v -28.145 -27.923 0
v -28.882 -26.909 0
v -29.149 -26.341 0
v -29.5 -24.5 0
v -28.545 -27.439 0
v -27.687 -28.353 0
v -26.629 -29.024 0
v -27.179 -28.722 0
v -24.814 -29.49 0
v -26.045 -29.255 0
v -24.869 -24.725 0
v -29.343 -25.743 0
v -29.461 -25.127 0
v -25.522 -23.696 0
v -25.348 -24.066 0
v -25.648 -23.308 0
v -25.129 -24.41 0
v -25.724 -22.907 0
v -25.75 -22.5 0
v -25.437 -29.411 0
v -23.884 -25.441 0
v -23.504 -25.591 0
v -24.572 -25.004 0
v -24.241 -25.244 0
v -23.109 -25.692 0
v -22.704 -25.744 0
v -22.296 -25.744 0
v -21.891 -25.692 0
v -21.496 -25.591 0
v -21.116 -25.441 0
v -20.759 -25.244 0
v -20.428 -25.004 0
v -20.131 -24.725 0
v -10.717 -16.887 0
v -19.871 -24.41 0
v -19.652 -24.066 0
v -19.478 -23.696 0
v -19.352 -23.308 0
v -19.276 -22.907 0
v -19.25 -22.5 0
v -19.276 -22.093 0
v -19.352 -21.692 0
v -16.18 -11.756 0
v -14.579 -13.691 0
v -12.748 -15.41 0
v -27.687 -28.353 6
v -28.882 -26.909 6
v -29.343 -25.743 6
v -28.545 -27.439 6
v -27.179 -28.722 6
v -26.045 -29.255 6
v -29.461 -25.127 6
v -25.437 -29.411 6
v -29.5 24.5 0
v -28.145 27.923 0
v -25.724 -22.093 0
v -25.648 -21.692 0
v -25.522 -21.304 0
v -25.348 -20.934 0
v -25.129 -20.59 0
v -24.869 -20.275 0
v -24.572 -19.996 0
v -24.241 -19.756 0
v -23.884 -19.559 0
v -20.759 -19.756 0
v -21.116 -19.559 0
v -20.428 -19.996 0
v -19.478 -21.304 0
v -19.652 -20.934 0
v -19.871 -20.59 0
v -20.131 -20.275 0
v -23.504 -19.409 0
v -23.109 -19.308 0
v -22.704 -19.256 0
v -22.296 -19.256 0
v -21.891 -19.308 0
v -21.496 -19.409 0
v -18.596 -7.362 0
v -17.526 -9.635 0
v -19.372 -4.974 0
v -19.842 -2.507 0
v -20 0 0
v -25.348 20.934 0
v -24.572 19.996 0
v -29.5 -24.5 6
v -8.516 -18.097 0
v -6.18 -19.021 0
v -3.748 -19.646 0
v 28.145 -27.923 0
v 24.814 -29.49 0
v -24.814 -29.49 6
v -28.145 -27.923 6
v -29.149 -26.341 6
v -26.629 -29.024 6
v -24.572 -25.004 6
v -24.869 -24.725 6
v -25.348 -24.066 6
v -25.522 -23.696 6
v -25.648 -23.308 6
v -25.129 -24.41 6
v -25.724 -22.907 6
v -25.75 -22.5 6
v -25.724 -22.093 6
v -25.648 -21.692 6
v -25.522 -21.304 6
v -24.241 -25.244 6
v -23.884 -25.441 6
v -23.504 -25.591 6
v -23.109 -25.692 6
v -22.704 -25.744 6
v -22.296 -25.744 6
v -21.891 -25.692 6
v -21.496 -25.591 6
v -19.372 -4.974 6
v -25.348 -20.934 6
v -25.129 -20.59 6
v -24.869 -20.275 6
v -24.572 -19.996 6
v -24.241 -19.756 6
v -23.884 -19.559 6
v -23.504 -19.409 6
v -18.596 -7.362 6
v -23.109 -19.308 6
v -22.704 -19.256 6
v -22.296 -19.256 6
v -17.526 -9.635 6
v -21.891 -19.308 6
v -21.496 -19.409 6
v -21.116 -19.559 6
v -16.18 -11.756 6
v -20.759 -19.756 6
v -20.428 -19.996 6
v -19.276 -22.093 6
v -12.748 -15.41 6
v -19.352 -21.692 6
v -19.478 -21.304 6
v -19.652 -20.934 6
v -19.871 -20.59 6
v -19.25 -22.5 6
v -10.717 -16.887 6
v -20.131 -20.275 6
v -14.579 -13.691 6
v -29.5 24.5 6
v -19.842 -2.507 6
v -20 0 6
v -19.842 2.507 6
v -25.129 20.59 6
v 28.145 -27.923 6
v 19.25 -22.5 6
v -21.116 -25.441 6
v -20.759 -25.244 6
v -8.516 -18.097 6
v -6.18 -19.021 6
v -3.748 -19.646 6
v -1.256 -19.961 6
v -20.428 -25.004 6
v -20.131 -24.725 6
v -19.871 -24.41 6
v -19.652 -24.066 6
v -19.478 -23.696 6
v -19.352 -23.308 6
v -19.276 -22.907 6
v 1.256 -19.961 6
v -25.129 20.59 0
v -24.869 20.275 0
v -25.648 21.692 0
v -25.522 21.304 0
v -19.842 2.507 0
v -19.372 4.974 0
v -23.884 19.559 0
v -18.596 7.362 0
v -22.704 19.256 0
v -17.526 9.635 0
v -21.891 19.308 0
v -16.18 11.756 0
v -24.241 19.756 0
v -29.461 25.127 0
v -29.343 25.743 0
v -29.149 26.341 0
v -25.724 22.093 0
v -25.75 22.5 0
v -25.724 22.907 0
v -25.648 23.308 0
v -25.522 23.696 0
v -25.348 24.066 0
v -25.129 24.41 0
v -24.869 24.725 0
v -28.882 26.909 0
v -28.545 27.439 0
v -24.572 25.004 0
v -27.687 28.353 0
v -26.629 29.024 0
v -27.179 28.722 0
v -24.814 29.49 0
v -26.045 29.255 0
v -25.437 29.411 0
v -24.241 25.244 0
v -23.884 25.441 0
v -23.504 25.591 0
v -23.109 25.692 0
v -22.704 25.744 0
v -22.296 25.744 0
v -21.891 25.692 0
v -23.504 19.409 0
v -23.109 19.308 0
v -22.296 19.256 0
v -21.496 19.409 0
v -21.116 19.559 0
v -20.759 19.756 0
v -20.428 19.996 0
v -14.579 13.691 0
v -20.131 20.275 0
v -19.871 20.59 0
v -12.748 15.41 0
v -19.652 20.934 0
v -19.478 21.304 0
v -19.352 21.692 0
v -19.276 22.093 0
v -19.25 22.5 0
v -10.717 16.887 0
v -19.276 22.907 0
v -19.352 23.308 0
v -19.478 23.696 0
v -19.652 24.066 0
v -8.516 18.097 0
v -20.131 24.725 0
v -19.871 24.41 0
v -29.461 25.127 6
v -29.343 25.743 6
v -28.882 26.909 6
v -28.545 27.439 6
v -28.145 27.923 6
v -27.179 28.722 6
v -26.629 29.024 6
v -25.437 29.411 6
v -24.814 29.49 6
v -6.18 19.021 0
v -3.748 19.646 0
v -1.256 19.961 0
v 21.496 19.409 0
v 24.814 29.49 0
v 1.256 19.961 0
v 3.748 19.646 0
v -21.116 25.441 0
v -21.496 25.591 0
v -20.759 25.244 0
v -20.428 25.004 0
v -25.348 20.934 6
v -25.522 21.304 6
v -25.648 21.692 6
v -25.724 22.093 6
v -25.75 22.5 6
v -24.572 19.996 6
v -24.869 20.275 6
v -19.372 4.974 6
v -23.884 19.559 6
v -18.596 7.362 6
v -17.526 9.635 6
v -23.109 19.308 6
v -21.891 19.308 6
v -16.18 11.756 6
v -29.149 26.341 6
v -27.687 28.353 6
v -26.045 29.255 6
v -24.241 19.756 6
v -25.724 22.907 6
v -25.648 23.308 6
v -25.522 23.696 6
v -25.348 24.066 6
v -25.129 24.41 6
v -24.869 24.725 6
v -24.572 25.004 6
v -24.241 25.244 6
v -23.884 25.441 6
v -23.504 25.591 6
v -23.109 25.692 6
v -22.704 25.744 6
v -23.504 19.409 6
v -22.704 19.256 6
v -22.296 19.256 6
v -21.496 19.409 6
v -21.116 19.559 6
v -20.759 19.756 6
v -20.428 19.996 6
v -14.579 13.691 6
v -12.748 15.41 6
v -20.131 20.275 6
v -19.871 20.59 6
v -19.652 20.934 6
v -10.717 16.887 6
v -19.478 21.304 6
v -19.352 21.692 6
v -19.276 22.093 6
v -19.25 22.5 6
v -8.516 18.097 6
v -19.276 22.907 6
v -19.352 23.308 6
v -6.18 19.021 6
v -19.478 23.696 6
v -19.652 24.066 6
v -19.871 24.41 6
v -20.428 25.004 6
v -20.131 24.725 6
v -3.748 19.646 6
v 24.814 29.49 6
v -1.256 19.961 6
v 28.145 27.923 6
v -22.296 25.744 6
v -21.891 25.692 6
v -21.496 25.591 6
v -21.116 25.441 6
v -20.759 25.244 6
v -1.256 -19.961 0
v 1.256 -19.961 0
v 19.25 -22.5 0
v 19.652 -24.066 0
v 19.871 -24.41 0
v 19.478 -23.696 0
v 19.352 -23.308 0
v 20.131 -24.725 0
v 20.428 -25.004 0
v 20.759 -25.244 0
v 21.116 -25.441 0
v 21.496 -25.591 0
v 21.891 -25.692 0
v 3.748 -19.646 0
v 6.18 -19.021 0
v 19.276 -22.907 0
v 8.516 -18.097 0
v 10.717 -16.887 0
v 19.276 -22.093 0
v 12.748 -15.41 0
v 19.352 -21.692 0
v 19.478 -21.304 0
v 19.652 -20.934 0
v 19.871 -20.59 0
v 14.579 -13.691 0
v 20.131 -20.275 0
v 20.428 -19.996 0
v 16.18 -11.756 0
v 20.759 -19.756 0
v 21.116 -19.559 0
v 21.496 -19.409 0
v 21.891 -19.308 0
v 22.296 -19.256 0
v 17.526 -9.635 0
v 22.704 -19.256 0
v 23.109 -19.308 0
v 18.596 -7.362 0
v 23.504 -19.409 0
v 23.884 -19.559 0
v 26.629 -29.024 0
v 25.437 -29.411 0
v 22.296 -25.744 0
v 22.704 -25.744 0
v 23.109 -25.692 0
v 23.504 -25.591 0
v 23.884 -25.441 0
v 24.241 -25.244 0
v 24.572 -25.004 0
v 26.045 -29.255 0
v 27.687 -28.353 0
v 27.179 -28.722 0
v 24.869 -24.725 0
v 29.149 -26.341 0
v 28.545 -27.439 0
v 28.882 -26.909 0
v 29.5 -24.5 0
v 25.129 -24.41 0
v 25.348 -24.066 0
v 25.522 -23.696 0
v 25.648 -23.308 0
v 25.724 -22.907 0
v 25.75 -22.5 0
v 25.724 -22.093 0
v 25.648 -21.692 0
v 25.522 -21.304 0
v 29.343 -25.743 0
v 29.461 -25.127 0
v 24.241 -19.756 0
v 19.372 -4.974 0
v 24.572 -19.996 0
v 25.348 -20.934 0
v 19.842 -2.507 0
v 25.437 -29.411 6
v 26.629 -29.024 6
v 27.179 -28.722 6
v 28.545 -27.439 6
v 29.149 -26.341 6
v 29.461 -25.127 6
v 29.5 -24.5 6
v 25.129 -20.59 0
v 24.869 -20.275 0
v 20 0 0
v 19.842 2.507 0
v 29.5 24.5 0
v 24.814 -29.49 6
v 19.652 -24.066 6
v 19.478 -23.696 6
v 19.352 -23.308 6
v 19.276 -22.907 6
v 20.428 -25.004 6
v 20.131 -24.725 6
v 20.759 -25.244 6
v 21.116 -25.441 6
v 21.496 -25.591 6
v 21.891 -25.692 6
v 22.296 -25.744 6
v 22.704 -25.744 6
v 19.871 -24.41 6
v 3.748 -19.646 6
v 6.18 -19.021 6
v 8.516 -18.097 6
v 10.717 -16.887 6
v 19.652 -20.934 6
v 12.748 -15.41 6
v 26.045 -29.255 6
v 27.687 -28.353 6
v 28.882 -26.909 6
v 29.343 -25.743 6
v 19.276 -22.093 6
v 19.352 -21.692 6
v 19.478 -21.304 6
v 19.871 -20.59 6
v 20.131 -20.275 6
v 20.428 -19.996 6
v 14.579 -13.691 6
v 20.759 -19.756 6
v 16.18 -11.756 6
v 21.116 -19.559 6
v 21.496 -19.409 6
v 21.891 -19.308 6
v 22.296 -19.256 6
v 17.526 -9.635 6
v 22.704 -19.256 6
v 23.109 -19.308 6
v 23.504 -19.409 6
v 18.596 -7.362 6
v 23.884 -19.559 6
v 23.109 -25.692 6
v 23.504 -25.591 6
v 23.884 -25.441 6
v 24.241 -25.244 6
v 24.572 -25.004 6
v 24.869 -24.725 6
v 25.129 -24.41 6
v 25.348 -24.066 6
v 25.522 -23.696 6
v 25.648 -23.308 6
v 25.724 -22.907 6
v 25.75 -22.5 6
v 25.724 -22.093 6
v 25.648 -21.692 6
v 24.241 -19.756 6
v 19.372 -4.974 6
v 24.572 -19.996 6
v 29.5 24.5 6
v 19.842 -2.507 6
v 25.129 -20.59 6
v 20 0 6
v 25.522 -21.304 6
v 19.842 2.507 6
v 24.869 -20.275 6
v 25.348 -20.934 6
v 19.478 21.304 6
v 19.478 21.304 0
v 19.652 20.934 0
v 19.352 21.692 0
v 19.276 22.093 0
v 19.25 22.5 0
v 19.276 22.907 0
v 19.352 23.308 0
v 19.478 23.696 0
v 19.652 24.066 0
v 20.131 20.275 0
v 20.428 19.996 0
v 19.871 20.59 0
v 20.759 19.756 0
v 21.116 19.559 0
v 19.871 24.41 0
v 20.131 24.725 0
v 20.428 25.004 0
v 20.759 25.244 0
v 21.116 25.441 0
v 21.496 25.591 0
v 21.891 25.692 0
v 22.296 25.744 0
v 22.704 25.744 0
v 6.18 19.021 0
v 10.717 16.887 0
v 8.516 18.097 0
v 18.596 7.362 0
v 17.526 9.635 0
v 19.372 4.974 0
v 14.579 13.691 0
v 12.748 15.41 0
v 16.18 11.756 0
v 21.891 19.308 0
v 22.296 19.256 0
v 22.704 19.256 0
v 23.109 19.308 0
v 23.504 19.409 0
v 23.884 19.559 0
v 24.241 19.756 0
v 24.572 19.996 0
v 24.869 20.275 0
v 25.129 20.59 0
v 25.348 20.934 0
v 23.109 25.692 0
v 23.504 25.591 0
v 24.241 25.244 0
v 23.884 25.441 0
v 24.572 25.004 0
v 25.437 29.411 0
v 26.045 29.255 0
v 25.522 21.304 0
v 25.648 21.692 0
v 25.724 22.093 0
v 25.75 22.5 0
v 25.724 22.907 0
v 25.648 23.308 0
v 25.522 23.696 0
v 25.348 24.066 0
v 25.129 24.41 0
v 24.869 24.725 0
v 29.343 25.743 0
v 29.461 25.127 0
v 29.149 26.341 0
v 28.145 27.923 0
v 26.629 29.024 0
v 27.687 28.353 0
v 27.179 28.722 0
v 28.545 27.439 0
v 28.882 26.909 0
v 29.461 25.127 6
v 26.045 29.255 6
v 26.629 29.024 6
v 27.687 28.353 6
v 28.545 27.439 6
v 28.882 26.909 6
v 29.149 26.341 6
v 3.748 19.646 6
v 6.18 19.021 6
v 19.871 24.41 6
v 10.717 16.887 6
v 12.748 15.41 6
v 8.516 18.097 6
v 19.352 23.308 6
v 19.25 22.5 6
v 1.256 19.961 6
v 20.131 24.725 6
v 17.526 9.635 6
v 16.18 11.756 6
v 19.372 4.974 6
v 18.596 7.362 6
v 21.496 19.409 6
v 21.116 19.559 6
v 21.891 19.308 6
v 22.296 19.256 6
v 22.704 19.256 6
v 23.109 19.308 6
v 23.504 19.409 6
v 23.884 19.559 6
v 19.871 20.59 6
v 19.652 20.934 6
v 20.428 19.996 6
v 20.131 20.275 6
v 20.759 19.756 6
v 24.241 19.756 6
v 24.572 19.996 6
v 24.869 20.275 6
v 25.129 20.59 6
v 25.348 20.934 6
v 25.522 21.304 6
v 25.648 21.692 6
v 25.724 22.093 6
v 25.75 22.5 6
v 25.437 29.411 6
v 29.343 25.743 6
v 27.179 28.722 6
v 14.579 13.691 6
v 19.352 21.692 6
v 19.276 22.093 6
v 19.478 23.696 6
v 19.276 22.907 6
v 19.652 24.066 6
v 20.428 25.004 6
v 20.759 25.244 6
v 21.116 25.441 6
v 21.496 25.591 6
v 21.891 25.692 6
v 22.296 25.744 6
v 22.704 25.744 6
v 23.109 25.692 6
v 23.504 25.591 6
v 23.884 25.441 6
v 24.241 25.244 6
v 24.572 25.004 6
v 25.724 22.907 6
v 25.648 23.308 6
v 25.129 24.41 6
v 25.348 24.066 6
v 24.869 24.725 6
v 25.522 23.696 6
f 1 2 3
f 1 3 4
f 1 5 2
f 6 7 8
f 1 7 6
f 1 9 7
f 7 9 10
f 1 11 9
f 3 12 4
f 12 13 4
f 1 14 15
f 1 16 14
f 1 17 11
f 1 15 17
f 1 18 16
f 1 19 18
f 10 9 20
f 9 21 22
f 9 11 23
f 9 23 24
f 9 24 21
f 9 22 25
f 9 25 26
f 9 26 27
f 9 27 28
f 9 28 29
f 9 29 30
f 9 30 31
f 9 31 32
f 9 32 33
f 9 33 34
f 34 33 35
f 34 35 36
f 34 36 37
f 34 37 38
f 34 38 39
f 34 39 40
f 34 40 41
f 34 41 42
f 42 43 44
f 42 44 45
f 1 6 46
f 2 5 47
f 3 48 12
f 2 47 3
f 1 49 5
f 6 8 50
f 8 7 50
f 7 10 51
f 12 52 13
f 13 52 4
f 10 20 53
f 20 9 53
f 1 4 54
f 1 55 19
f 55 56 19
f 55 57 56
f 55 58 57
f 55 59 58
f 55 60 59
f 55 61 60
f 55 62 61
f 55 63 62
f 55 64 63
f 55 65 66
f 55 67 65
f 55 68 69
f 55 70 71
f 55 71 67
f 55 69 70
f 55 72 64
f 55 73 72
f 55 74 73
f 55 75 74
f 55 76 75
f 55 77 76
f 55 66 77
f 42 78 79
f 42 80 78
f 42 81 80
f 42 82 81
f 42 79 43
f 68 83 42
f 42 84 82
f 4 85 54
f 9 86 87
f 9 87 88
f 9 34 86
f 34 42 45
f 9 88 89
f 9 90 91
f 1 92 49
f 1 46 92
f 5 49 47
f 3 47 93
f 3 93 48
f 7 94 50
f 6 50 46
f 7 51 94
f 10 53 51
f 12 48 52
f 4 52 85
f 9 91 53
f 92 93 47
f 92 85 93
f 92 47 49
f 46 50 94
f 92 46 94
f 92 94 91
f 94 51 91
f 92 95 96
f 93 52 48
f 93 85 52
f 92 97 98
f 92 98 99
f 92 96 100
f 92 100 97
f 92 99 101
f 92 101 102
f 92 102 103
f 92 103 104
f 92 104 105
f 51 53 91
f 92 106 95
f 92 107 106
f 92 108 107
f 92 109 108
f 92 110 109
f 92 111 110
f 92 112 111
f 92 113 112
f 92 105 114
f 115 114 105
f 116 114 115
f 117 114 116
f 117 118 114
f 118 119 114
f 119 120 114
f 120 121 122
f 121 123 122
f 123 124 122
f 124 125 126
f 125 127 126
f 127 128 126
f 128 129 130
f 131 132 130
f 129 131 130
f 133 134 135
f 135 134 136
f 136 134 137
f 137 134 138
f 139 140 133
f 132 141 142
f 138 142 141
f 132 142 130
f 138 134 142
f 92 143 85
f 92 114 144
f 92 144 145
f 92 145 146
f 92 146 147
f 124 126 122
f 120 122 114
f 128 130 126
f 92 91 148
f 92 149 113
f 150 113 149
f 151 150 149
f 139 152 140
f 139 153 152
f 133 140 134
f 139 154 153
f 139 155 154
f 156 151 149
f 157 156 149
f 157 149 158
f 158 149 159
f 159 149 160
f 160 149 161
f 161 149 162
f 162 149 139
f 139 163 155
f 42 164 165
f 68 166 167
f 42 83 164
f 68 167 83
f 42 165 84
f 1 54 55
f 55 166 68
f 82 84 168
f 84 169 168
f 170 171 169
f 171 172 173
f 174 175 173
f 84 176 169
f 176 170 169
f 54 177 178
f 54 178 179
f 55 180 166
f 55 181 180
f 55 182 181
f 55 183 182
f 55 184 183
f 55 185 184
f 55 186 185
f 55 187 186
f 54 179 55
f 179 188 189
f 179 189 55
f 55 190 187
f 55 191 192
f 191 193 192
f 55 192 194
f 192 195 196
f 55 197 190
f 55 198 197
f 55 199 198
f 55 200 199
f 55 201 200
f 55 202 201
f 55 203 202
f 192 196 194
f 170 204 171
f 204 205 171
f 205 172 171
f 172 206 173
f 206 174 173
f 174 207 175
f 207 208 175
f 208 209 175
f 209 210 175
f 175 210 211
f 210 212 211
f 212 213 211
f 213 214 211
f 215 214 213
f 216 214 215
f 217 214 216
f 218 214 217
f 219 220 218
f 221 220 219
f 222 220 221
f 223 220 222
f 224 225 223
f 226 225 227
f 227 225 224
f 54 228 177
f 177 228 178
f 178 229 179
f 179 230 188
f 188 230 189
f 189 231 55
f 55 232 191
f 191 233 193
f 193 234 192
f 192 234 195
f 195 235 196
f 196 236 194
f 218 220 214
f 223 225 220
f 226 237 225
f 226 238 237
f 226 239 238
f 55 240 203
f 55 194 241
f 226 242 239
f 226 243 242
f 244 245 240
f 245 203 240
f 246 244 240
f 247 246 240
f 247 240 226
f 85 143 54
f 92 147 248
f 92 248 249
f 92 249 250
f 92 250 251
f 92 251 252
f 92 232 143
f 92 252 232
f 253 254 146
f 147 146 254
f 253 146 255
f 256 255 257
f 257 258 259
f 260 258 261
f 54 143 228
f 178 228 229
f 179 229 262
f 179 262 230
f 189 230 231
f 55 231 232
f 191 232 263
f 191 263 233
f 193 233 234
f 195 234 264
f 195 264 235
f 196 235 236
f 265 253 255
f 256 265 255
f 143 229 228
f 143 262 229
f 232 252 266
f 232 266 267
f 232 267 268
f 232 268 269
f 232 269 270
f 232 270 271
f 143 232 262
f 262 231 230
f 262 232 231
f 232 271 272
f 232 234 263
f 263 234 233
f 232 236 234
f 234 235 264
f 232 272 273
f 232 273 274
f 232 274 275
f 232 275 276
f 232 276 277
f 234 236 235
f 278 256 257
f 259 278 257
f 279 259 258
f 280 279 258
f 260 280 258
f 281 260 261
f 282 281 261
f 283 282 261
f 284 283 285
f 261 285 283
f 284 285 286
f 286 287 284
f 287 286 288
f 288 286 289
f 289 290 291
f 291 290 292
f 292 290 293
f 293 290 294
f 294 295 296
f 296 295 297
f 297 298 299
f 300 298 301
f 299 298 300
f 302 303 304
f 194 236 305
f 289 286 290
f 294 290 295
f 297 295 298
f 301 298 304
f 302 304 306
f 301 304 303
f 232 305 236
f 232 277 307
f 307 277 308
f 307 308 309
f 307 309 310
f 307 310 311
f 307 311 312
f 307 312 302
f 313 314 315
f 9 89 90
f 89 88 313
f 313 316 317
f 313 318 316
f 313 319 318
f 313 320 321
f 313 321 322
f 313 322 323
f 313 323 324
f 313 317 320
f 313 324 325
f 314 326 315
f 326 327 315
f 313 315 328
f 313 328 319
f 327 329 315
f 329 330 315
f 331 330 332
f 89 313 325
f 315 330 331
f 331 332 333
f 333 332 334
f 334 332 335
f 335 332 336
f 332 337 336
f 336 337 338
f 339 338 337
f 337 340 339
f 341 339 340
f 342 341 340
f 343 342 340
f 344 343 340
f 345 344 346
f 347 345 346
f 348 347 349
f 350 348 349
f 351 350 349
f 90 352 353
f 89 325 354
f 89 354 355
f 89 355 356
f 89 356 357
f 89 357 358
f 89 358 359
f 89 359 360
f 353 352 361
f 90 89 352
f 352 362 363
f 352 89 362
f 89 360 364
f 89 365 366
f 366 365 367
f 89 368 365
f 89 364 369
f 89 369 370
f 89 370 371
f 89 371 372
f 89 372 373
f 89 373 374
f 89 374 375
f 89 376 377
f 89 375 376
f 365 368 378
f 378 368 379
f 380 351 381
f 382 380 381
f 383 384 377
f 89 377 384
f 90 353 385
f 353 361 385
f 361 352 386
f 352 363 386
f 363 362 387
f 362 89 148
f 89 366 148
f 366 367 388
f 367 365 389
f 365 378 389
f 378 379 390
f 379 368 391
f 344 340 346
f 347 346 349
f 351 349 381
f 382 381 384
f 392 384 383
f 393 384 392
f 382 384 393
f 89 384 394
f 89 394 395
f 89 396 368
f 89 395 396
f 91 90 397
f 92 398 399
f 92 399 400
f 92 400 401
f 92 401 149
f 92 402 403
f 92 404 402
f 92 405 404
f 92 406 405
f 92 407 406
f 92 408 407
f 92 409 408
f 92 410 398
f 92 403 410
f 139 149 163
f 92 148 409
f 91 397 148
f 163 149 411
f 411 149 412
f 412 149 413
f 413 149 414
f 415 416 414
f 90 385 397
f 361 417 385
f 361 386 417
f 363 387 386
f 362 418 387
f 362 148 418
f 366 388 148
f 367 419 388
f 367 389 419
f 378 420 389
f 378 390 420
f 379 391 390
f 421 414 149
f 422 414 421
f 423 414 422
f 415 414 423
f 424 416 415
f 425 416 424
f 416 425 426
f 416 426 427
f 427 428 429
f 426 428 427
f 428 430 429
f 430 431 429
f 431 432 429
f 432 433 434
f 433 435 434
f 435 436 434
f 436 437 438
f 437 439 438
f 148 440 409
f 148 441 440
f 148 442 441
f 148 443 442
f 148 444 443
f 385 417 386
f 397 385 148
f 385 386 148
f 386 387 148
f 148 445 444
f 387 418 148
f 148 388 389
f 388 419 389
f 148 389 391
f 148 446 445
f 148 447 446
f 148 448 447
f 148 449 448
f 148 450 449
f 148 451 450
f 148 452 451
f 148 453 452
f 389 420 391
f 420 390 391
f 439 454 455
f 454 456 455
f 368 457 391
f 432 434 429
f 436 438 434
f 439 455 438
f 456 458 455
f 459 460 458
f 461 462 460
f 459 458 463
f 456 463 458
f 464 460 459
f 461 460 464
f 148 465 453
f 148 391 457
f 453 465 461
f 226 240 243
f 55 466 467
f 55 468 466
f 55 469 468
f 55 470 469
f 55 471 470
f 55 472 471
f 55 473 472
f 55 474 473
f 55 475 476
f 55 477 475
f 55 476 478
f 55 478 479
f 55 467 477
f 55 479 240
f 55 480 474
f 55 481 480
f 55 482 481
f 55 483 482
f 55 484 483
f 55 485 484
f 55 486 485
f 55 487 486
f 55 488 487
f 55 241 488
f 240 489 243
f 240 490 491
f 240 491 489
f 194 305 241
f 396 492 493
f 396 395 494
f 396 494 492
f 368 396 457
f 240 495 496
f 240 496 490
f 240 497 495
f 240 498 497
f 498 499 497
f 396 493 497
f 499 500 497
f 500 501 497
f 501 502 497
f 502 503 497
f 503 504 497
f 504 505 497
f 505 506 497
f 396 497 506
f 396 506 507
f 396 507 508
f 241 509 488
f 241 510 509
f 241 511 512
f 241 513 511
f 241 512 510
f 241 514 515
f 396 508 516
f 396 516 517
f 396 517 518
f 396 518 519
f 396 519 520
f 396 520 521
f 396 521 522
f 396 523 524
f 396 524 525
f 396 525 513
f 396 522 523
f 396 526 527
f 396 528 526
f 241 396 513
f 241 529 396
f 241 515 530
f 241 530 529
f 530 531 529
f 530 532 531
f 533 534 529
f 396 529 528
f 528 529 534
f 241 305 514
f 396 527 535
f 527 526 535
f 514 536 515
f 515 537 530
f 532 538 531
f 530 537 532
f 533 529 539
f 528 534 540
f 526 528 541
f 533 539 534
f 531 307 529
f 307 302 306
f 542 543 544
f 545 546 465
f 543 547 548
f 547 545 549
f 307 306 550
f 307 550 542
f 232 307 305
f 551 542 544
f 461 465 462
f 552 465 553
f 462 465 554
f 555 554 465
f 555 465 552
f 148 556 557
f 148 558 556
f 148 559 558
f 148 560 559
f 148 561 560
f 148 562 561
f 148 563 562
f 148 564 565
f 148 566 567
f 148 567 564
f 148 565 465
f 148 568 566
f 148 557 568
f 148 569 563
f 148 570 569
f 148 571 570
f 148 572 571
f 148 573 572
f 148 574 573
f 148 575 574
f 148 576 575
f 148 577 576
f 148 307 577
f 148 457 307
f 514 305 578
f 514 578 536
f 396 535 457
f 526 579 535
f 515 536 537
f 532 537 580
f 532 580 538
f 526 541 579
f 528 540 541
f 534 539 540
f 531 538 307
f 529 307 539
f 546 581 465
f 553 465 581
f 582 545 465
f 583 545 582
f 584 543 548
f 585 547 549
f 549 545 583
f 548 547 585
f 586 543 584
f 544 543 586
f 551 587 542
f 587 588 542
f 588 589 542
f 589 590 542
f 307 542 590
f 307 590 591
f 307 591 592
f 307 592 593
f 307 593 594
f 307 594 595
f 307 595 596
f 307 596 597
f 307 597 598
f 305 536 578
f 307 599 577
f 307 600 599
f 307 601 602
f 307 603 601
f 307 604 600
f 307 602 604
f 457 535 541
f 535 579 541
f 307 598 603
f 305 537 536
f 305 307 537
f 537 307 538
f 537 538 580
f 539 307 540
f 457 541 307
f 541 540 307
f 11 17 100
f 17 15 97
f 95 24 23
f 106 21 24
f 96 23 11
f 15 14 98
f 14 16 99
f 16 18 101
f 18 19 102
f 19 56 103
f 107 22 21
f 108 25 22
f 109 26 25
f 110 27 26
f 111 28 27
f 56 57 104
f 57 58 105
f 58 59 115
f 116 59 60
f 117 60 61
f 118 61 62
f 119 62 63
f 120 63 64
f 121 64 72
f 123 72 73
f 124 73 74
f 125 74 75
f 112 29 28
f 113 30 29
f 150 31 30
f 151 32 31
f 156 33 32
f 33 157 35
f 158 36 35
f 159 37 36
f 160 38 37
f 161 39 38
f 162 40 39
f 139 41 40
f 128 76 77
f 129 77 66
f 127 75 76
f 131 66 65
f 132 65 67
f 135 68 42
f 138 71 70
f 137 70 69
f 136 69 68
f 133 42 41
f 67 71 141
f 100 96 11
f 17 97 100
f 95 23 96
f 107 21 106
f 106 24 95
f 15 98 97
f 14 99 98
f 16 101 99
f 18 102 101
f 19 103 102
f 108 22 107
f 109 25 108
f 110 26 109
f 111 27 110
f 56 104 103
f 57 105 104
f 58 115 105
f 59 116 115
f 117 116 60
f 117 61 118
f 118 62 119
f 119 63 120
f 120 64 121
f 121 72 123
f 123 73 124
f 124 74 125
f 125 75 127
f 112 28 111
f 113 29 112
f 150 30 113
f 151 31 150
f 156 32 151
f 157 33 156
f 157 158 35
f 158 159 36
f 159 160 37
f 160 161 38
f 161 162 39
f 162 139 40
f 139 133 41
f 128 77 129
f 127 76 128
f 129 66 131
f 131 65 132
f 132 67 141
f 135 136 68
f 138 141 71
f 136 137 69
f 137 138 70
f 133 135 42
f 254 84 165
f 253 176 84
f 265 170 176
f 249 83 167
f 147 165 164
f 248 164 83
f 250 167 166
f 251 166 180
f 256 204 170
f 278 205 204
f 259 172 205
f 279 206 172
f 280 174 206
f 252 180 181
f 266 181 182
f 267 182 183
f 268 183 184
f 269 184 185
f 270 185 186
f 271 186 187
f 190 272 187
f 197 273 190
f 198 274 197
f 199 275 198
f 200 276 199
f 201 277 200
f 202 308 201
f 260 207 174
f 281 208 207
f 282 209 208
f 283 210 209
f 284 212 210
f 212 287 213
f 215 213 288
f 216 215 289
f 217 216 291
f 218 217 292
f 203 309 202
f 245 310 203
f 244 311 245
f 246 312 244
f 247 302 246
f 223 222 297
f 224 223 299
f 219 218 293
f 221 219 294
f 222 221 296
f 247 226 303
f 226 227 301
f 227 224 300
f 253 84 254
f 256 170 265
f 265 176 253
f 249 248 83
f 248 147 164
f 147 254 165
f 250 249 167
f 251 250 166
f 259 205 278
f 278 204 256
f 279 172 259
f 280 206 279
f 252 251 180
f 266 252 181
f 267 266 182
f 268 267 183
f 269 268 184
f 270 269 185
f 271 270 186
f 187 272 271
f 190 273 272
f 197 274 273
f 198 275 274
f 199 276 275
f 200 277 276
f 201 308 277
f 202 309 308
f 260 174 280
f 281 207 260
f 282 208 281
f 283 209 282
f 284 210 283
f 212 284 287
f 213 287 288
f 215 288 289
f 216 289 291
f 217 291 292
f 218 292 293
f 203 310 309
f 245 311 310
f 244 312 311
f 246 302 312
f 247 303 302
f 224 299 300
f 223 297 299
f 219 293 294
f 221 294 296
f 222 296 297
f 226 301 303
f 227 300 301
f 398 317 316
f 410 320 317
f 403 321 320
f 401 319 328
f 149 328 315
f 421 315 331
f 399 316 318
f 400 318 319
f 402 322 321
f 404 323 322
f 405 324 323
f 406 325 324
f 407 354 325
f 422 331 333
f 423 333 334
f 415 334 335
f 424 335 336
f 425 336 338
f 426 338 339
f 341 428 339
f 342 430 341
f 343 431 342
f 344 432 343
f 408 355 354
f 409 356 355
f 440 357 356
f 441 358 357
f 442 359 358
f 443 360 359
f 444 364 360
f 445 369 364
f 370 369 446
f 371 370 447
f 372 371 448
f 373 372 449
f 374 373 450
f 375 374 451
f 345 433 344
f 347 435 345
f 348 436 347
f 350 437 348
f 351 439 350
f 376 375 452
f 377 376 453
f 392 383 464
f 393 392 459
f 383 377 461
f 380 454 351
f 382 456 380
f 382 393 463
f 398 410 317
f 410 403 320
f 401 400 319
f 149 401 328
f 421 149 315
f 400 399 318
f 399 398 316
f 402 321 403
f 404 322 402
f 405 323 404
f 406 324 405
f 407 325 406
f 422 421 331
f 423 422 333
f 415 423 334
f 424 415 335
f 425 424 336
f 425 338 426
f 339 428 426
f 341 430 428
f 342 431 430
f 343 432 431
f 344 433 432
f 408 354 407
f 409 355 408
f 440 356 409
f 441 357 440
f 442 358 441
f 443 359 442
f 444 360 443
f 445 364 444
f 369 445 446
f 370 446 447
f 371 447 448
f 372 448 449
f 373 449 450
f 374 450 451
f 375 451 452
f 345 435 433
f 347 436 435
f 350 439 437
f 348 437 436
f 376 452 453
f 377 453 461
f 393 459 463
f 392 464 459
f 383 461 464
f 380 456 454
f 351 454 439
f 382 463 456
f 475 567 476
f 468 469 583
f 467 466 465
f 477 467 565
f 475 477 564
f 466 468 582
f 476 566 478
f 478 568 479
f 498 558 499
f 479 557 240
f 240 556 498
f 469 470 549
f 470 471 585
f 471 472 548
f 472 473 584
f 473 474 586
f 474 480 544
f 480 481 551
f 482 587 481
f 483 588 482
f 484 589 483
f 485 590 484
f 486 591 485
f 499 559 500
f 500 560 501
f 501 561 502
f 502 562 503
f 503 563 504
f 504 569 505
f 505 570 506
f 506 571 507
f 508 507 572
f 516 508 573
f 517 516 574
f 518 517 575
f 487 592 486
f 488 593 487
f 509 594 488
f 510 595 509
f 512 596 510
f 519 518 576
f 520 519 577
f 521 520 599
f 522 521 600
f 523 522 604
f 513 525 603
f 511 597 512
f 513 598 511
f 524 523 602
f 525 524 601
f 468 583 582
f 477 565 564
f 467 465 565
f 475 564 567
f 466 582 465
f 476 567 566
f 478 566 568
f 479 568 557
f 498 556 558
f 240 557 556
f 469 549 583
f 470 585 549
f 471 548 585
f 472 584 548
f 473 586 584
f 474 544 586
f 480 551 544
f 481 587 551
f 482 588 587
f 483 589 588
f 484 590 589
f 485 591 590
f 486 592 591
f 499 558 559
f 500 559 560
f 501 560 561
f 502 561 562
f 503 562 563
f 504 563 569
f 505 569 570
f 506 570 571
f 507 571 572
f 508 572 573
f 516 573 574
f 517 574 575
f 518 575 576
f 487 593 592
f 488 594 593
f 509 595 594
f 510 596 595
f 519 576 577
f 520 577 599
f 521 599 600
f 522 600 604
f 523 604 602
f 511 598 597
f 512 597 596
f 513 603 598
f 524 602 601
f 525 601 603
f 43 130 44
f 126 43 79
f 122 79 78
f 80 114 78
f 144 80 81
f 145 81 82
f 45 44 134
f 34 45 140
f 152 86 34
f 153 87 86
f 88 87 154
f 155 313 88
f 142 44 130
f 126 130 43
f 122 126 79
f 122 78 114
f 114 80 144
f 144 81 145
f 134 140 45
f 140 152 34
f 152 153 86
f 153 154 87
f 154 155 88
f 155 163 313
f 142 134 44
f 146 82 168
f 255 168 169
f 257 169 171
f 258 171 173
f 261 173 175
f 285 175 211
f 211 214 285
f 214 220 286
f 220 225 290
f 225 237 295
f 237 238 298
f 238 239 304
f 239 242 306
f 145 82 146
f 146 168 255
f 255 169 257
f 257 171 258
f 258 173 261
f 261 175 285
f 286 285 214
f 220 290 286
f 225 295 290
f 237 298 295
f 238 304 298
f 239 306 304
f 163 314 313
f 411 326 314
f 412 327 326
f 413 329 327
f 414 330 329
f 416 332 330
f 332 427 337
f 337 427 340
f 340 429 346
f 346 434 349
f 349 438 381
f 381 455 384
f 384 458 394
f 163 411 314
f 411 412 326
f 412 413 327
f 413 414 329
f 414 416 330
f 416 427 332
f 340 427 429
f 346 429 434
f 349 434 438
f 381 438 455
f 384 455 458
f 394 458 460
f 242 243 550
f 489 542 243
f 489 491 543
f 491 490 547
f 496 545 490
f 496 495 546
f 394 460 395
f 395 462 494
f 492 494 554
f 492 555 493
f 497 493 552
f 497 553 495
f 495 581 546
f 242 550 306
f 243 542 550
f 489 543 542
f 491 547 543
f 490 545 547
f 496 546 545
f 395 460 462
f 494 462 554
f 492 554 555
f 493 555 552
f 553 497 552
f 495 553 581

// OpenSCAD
$fn = 50;

difference() {
	union() {
		hull() {
			translate(v = [-24.5, 24.5, 0]) {
				cylinder(h = 6, r = 5);
			}
			translate(v = [24.5, 24.5, 0]) {
				cylinder(h = 6, r = 5);
			}
			translate(v = [-24.5, -24.5, 0]) {
				cylinder(h = 6, r = 5);
			}
			translate(v = [24.5, -24.5, 0]) {
				cylinder(h = 6, r = 5);
			}
		}
	}
	union() {
		translate(v = [-22.5, -22.5, -100.0]) {
			cylinder(h = 200, r = 3.25);
		}
		translate(v = [-22.5, 22.5, -100.0]) {
			cylinder(h = 200, r = 3.25);
		}
		translate(v = [22.5, -22.5, -100.0]) {
			cylinder(h = 200, r = 3.25);
		}
		translate(v = [22.5, 22.5, -100.0]) {
			cylinder(h = 200, r = 3.25);
		}
		translate(v = [-22.5, -22.5, -100.0]) {
			cylinder(h = 200, r = 1.8);
		}
		translate(v = [-22.5, 22.5, -100.0]) {
			cylinder(h = 200, r = 1.8);
		}
		translate(v = [22.5, -22.5, -100.0]) {
			cylinder(h = 200, r = 1.8);
		}
		translate(v = [22.5, 22.5, -100.0]) {
			cylinder(h = 200, r = 1.8);
		}
		cylinder(h = 6, r = 20.0);
	}
}
